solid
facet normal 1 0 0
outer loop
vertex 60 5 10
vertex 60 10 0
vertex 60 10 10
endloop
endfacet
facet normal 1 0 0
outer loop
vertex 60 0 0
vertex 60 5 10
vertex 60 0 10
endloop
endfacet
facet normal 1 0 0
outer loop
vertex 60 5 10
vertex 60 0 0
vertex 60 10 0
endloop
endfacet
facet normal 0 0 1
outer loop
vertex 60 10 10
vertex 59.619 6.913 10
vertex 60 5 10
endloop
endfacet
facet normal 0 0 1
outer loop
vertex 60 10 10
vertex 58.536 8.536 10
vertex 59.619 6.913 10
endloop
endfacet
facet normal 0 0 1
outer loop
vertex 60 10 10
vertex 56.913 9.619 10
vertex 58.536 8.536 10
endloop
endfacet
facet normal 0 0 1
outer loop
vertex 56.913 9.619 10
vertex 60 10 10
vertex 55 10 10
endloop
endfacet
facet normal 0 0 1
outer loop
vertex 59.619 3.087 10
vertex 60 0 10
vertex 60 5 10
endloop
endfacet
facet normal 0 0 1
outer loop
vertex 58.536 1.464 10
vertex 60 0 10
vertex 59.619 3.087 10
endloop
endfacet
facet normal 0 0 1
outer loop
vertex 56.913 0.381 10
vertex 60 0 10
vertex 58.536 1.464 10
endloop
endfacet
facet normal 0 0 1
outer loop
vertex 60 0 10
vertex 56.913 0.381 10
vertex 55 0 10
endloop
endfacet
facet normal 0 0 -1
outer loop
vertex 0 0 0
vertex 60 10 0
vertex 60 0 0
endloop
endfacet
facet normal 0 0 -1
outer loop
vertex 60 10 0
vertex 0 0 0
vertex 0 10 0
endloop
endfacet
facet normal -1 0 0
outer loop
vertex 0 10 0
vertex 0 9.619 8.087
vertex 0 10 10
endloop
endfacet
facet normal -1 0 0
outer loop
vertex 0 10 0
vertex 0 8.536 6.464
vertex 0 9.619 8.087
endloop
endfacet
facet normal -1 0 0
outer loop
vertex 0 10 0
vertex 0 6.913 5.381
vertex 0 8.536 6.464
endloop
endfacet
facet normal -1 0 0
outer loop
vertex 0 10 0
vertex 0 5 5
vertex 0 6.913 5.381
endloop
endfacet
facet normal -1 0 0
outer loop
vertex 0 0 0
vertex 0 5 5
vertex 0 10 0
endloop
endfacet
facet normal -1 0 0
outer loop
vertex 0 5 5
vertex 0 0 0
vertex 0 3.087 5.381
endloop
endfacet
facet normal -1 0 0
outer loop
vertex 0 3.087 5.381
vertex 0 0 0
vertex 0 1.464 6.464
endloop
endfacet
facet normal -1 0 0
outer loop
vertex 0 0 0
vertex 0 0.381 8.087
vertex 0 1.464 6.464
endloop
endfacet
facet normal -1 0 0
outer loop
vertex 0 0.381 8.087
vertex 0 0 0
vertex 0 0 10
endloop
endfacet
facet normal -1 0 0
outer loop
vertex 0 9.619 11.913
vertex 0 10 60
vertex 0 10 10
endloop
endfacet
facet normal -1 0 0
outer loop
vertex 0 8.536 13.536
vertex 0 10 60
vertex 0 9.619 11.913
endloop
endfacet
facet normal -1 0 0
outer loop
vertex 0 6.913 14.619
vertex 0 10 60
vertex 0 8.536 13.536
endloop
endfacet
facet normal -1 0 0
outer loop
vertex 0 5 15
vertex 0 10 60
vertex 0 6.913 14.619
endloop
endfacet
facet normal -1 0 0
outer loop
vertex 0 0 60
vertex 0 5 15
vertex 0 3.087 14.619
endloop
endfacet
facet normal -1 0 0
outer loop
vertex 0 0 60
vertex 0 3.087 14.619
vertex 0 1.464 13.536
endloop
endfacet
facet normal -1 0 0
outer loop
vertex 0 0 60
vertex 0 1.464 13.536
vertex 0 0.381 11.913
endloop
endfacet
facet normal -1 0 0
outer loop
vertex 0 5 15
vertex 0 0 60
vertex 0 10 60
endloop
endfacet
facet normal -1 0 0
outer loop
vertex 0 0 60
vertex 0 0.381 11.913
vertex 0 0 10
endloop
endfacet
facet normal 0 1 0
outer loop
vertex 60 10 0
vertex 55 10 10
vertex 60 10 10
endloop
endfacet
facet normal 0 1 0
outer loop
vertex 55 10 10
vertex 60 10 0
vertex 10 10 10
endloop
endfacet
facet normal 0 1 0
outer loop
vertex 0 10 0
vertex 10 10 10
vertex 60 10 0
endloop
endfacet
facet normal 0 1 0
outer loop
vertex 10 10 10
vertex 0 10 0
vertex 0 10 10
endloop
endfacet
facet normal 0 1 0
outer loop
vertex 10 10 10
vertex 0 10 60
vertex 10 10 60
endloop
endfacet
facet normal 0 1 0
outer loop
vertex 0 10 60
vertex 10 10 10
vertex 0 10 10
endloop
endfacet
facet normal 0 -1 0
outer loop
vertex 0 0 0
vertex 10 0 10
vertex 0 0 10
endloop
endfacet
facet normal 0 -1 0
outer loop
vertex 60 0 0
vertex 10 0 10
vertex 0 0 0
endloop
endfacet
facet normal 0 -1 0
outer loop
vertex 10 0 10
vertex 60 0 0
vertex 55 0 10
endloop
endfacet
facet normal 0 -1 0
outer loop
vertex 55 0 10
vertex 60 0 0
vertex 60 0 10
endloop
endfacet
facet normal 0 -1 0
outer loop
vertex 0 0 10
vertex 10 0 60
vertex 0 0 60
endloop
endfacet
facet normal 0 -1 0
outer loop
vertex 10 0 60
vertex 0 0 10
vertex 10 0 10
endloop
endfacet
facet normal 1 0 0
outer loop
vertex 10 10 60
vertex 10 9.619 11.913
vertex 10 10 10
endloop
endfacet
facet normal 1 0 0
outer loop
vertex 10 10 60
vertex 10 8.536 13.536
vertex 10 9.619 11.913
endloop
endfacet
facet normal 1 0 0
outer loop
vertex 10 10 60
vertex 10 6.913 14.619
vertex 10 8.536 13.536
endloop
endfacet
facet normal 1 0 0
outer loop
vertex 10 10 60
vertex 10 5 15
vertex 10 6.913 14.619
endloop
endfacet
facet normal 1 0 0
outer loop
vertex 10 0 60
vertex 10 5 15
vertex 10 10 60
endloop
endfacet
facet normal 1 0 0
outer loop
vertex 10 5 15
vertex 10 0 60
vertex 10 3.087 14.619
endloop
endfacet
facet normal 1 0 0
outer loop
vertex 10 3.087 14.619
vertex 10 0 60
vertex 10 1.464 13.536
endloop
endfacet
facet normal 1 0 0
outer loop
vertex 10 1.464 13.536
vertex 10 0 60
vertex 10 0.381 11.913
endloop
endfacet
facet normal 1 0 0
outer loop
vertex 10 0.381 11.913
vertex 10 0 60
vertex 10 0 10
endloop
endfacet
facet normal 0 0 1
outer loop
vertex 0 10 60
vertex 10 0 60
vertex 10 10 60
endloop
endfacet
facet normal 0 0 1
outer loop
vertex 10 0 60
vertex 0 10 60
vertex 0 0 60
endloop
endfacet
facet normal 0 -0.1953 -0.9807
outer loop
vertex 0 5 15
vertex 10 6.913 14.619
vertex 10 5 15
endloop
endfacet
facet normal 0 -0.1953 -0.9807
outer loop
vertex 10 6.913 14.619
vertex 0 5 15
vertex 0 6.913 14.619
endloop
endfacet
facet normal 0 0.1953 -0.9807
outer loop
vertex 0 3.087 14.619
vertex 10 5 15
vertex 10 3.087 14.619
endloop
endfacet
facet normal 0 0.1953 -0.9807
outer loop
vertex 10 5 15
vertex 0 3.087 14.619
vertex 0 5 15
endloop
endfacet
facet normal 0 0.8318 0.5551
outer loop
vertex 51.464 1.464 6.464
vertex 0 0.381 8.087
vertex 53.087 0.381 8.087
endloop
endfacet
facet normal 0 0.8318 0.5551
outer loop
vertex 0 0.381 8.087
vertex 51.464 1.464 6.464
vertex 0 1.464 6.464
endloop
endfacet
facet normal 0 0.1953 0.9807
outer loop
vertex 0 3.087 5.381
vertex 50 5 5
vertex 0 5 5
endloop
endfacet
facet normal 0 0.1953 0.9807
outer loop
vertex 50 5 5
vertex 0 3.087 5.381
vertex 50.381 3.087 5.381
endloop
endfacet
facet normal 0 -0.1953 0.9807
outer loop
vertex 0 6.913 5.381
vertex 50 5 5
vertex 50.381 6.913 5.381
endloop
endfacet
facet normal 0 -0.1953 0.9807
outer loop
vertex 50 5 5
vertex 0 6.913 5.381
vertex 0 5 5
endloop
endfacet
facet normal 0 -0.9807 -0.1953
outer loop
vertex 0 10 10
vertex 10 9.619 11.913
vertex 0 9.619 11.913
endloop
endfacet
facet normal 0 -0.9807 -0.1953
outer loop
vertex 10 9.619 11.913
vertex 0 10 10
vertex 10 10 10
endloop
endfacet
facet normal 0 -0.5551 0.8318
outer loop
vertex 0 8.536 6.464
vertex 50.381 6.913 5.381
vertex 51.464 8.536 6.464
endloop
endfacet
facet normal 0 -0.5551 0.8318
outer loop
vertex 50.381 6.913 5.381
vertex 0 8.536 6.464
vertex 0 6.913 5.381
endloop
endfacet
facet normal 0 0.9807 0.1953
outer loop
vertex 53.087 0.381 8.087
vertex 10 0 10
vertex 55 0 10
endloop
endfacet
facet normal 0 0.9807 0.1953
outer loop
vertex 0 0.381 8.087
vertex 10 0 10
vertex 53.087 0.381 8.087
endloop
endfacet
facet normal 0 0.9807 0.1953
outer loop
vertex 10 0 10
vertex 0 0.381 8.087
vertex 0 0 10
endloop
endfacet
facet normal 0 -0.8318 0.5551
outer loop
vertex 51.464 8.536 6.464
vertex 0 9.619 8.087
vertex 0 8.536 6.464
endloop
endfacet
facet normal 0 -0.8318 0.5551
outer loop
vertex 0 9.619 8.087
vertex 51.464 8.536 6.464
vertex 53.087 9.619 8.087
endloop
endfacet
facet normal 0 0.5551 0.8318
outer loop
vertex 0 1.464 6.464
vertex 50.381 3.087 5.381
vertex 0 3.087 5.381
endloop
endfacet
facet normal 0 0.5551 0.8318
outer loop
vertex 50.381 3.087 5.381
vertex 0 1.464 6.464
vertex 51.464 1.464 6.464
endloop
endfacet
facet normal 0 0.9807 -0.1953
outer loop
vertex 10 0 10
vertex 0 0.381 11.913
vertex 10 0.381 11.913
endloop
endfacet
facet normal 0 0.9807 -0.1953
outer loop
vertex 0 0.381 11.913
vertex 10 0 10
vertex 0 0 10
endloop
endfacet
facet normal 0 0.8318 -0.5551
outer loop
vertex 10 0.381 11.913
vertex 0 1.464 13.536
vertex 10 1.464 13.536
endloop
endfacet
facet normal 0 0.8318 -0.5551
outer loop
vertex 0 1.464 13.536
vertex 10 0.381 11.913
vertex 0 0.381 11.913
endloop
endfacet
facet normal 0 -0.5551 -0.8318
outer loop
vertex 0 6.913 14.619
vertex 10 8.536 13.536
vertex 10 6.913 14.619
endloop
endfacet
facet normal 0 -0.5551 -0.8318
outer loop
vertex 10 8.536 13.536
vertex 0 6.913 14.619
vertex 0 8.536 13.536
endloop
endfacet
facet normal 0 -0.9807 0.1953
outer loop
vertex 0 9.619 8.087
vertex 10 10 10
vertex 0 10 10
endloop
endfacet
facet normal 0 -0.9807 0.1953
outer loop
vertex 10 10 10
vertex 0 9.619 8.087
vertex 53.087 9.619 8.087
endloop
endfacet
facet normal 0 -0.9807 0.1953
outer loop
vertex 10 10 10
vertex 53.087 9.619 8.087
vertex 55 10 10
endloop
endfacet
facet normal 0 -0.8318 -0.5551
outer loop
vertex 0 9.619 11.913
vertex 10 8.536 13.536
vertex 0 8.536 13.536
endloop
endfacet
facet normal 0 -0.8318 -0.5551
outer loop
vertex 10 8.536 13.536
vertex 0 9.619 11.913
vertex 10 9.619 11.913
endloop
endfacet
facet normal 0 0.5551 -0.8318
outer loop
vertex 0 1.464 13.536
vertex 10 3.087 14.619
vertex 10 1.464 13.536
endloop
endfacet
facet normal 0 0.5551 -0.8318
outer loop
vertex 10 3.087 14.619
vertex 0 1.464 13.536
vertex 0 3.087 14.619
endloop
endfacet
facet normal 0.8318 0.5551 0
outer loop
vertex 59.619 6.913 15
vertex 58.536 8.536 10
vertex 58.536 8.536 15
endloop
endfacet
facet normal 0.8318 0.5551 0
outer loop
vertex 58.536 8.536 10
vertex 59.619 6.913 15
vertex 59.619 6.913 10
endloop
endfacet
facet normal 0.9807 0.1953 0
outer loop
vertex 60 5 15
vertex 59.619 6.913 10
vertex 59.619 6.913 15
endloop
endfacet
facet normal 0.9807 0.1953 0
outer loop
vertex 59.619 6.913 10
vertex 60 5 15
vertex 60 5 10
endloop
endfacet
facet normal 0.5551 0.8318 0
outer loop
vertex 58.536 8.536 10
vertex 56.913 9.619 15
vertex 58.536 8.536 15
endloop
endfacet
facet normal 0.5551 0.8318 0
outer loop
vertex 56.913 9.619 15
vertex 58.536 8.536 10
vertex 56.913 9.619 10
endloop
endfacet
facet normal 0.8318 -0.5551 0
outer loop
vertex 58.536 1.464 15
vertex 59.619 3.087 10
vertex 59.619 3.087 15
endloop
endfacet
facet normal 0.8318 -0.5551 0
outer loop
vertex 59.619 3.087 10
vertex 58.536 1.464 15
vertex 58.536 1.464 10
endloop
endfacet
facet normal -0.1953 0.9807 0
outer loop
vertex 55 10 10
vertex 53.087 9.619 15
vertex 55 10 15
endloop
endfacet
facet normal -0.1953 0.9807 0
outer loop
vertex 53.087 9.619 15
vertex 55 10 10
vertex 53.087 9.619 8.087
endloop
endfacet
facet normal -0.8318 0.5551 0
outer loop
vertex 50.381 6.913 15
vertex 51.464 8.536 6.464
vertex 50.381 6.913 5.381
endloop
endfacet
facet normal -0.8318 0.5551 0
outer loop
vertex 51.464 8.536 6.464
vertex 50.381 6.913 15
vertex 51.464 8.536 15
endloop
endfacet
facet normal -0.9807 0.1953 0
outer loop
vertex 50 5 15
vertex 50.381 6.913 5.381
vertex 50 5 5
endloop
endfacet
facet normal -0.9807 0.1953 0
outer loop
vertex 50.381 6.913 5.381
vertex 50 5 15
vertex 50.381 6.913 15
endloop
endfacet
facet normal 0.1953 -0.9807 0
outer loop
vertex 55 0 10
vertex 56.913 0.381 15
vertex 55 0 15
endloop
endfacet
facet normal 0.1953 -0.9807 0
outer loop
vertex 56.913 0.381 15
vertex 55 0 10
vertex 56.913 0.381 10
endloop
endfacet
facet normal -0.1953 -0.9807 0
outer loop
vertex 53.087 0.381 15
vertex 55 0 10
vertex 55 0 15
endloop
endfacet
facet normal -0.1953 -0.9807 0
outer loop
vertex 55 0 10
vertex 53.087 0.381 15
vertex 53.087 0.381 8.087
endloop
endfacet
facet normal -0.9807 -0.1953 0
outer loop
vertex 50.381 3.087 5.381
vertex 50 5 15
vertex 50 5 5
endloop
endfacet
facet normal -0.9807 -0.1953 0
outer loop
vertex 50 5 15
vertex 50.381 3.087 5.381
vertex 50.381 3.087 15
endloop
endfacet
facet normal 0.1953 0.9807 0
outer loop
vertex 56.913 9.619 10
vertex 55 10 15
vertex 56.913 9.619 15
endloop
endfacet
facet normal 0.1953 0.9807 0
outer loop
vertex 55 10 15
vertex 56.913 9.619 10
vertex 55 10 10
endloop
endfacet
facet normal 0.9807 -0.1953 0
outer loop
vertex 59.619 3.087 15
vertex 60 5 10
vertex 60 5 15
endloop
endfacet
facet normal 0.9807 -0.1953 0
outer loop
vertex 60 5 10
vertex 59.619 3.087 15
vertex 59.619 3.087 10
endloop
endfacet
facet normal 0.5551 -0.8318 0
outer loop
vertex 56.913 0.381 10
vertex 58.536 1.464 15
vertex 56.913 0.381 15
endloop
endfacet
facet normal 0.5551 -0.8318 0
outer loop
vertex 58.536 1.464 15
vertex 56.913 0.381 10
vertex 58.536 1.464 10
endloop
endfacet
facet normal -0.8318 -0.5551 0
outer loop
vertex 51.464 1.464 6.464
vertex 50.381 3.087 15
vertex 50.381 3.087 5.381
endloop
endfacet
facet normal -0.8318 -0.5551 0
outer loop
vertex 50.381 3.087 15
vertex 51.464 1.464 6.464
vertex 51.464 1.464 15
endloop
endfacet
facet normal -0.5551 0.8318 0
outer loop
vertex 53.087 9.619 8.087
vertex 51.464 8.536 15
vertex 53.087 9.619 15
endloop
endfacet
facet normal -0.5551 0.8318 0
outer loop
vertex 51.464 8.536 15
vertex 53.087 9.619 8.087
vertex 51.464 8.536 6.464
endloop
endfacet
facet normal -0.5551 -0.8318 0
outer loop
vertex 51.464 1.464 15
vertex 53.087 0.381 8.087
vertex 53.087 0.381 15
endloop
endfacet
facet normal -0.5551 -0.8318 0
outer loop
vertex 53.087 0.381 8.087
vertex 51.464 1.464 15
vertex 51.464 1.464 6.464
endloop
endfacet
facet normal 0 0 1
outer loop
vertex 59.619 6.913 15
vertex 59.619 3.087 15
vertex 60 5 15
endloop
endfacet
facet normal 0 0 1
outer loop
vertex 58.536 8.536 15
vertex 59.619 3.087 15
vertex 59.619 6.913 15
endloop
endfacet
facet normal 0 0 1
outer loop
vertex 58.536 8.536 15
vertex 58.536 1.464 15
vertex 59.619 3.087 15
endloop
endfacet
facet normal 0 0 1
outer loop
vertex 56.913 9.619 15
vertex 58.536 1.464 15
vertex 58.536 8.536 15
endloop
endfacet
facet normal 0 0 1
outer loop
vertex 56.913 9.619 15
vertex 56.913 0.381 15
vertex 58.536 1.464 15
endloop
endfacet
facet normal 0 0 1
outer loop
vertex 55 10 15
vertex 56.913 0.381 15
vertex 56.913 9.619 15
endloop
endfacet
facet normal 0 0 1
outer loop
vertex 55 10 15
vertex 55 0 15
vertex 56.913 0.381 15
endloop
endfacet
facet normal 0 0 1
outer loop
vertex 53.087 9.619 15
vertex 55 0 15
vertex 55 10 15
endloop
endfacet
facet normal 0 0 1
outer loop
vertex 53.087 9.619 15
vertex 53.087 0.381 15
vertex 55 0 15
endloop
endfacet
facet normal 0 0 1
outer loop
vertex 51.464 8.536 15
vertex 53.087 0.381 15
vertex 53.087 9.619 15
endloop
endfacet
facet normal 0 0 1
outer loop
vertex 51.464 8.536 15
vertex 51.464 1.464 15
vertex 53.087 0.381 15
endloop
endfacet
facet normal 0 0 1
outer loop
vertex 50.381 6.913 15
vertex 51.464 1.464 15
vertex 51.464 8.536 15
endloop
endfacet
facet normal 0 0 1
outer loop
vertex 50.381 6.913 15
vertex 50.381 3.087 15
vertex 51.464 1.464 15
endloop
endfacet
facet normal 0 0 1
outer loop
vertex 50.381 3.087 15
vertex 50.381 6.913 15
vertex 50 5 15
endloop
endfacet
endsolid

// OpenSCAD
module reconstructedObject() {
    // Main L-shaped part
    difference() {
        union() {
            // Horizontal part
            cube([60, 10, 10]);
            // Vertical part
            translate([0, 0, 10])
                cube([10, 10, 50]);
        }
        // Remove excess from the junction
        translate([-5, 5, 10])
            rotate([0, 90, 0])
                cylinder(r=5, h=60);
    }

    // Circular extrusion
    translate([55, 5, 5])
        cylinder(r=5, h=10);
}

reconstructedObject();
